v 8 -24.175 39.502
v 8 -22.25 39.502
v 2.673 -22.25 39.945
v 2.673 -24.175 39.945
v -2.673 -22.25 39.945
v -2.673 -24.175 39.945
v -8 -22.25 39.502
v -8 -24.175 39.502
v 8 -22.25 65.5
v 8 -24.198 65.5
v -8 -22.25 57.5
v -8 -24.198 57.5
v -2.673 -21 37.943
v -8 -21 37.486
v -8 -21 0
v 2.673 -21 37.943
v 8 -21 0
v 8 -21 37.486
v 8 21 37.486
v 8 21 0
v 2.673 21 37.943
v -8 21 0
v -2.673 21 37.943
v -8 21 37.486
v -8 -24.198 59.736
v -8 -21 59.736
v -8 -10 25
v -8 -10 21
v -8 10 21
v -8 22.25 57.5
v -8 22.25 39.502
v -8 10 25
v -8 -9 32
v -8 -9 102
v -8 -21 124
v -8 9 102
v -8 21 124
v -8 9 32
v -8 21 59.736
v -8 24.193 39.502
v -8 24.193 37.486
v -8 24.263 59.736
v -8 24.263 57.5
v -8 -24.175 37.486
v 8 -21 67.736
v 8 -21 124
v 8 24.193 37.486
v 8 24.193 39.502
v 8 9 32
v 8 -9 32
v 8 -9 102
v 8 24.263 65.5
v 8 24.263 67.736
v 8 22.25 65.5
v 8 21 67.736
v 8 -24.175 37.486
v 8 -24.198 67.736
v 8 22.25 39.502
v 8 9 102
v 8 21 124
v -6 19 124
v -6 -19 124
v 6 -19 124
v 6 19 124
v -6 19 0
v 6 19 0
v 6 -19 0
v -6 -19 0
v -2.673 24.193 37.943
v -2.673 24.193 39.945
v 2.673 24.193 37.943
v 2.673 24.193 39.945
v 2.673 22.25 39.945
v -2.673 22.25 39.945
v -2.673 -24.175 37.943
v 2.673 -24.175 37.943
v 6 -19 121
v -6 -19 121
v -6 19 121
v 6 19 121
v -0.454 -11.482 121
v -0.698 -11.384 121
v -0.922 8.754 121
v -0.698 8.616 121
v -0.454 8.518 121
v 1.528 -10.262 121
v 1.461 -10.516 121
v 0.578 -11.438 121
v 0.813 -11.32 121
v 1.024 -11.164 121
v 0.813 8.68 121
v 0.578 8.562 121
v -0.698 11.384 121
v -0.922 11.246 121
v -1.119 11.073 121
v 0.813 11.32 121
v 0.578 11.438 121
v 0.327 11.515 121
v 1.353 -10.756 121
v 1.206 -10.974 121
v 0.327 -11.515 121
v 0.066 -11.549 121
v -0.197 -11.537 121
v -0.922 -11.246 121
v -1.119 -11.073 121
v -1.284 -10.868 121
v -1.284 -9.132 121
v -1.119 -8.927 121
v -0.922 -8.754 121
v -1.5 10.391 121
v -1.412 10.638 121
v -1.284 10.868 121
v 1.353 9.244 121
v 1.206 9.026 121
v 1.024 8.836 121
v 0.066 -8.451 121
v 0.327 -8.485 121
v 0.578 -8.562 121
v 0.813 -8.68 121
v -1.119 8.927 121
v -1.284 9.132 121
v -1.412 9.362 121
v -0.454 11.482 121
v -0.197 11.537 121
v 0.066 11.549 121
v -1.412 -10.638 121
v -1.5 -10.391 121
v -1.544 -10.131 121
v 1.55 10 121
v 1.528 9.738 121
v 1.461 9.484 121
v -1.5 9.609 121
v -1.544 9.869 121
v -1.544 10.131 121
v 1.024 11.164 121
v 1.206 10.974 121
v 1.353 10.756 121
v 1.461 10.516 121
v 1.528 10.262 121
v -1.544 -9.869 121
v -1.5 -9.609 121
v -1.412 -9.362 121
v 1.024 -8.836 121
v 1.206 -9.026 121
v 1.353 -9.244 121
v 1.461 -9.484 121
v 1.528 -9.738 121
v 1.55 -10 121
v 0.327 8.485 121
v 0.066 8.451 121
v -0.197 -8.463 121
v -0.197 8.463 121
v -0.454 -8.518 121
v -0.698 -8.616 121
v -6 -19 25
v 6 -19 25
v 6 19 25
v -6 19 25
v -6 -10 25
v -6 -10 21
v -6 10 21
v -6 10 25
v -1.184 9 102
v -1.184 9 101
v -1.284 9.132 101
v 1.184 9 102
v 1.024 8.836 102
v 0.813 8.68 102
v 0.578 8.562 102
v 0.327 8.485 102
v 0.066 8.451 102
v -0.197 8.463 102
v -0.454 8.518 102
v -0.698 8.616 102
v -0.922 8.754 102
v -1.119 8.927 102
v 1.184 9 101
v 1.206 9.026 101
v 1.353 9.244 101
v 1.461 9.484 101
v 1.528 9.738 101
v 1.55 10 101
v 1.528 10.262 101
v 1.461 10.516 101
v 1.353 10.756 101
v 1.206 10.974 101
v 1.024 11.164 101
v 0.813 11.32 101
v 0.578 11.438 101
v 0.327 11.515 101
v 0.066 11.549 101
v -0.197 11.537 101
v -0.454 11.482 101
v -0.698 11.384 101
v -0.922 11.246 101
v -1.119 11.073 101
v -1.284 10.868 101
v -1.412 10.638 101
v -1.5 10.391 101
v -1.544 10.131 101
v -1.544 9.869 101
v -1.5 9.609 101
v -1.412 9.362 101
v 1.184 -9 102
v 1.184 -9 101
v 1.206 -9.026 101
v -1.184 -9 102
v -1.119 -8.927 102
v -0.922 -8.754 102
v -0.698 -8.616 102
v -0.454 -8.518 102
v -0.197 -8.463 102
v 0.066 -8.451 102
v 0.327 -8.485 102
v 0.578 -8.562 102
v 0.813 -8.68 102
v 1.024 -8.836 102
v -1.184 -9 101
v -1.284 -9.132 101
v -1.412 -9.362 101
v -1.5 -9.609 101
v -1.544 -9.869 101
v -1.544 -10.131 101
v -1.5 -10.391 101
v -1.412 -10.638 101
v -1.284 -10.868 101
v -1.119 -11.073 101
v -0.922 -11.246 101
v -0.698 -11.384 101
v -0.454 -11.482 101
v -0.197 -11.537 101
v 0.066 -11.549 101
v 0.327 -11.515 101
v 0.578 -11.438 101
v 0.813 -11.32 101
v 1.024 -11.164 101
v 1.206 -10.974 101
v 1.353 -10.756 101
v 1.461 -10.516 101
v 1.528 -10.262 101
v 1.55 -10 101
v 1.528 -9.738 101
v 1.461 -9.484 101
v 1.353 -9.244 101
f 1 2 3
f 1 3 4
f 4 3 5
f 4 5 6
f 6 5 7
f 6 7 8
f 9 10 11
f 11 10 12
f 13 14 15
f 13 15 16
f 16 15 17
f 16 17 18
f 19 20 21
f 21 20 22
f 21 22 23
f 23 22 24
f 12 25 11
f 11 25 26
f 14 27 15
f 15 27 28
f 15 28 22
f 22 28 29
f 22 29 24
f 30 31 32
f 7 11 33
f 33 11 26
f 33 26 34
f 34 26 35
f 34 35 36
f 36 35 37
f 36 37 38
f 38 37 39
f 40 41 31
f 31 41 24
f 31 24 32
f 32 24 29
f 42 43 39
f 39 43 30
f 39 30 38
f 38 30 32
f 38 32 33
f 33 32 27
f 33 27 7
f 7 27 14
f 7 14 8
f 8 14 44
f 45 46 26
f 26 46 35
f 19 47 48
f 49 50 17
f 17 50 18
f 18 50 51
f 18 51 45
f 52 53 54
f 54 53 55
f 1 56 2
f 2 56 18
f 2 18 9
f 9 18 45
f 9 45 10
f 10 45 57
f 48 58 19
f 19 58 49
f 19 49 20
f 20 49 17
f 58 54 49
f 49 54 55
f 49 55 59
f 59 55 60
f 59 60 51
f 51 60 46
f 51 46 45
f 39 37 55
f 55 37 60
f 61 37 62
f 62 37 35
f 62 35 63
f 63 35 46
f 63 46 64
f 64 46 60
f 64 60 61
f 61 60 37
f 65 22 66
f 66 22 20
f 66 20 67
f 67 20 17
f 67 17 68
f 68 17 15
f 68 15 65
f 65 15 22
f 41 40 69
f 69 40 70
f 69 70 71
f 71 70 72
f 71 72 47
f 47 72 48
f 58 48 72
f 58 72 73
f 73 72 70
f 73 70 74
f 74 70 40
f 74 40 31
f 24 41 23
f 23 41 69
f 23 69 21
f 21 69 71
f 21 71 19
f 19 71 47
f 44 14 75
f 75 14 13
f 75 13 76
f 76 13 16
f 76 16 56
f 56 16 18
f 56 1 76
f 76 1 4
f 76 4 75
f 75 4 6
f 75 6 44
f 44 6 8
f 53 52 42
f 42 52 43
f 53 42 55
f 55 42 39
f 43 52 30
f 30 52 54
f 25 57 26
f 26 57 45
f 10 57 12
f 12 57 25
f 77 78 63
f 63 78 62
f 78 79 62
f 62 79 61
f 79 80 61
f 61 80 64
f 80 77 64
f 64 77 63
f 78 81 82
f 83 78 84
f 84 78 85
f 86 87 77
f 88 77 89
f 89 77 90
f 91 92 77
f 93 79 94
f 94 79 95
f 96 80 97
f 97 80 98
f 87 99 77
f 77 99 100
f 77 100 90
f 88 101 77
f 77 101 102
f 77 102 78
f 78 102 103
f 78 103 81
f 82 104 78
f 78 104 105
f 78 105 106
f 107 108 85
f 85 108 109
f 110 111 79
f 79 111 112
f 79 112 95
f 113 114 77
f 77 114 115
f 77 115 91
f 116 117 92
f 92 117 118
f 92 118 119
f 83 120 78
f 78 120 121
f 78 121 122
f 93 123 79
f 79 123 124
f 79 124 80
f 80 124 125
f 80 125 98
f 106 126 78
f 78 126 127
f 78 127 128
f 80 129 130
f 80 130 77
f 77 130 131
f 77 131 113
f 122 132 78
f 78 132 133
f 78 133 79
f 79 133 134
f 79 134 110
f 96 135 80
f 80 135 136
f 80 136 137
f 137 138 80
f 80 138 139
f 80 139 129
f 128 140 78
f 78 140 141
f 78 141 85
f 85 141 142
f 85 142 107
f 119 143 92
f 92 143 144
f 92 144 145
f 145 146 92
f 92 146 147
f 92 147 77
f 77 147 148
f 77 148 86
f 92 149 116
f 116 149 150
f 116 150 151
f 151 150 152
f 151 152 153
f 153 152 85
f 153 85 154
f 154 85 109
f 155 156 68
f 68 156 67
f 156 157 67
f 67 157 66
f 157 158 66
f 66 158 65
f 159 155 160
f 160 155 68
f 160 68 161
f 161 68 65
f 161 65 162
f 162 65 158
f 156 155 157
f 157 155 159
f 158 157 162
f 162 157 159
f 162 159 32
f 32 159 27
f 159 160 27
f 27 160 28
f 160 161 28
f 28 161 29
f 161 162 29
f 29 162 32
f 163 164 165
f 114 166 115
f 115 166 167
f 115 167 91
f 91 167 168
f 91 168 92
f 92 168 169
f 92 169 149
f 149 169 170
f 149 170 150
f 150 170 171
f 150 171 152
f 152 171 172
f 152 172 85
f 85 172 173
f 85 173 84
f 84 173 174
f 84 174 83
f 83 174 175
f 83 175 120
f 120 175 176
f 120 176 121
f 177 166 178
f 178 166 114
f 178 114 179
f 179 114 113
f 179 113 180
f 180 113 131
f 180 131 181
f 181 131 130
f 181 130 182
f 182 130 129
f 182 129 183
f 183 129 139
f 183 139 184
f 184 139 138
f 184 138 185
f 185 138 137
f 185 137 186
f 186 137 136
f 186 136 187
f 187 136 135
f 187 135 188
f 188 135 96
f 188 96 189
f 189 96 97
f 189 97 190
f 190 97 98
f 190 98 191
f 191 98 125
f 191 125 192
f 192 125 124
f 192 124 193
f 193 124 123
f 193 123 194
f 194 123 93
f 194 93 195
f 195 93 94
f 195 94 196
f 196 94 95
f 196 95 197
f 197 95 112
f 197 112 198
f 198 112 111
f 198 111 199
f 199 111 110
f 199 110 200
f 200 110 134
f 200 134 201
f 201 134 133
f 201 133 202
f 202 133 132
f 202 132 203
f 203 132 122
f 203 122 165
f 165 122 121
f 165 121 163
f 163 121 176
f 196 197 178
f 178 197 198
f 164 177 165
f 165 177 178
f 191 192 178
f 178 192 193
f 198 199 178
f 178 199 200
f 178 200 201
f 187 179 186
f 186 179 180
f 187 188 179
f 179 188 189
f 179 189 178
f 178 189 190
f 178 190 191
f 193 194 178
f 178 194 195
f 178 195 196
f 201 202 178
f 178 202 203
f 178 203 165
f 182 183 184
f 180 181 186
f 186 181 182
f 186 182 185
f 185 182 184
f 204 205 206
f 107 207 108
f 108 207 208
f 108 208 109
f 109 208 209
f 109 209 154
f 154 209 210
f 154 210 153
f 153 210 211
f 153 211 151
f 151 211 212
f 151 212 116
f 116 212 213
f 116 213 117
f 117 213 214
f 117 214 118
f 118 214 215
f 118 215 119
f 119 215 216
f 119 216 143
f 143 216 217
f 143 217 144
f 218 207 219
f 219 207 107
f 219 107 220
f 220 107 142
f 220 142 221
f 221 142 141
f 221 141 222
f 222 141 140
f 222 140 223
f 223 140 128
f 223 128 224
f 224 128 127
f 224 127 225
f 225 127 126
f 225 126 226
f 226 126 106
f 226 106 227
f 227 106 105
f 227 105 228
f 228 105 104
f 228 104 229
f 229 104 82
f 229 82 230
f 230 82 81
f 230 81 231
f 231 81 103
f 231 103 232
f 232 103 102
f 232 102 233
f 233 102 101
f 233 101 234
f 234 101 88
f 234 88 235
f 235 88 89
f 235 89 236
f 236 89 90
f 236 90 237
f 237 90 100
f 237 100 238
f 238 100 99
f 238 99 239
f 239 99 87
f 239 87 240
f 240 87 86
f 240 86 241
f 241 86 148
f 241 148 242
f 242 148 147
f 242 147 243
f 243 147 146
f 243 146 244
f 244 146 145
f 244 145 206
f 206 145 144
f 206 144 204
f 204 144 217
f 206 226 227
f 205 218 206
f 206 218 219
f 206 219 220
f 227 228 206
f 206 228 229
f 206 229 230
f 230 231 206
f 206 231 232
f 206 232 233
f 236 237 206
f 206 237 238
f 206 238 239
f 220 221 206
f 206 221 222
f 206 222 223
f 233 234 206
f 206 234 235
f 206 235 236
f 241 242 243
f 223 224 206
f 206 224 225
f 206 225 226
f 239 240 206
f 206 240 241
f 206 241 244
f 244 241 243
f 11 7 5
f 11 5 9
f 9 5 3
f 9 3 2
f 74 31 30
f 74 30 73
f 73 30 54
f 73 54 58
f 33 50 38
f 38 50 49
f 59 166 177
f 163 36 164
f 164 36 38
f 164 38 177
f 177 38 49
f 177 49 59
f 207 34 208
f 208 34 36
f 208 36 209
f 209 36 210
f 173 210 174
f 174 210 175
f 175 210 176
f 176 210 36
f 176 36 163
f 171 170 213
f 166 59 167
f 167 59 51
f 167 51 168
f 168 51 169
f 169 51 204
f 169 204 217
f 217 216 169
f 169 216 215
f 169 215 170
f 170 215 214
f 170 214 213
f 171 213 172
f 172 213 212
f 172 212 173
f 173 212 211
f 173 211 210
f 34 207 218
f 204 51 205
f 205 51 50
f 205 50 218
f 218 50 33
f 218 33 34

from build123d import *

# Parameters (mm, degrees)
SKETCH_1_W            = 16
SKETCH_1_H            = 42
EXTRUDE_1_DEPTH       = 124
EXTRUDE_4_DEPTH       = 24.193161441
EXTRUDE_4_DEPTH_BACK  = 24.175019218
EXTRUDE_5_DEPTH       = 24.263214739
EXTRUDE_5_DEPTH_BACK  = 24.1979861
SKETCH_7_W            = 12
SKETCH_7_H            = 38
CUT_EXTRUDE_1_DEPTH   = 3
SKETCH_8_W            = 12
SKETCH_8_H            = 38
CUT_EXTRUDE_2_DEPTH   = 25
SKETCH_9_W            = 4
SKETCH_9_H            = 20
CUT_EXTRUDE_3_DEPTH   = 2
SKETCH_10_R           = 1.55
CUT_EXTRUDE_4_DEPTH   = 20
EXTRUDE_10_DEPTH      = 22.25
EXTRUDE_10_DEPTH_BACK = 22.25
SKETCH_13_W           = 70
SKETCH_13_H           = 18
CUT_EXTRUDE_5_DEPTH   = 22.25


with BuildPart() as part:
    # Эскиз1 → Бобышка-Вытянуть1 (new body)
    with BuildSketch(Plane.XY):
        Rectangle(SKETCH_1_W, SKETCH_1_H)
    extrude(amount=EXTRUDE_1_DEPTH)

    # Эскиз5 → Бобышка-Вытянуть4 (add, two sides: drawn at the far end of the back side and taken through both)
    with BuildSketch(Plane(origin=(0, 0, 0), x_dir=(1, 0, 0), z_dir=(0, 1, 0)).offset(-EXTRUDE_4_DEPTH_BACK)):
        with BuildLine():
            Line((-8, -37.48588549), (-8, -39.501953095))
            ThreePointArc((-8, -39.501953095), (0, -40), (8, -39.501953095))
            Line((8, -39.501953095), (8, -37.48588549))
            ThreePointArc((8, -37.48588549), (0, -38), (-8, -37.48588549))
        make_face()
    extrude(amount=EXTRUDE_4_DEPTH + EXTRUDE_4_DEPTH_BACK)

    # Эскиз6 → Бобышка-Вытянуть5 (add, two sides: drawn at the far end of the back side and taken through both)
    with BuildSketch(Plane(origin=(0, 0, 0), x_dir=(1, 0, 0), z_dir=(0, 1, 0)).offset(-EXTRUDE_5_DEPTH_BACK)):
        Polygon((-8, -57.5), (8, -65.5), (8, -67.736067977), (-8, -59.736067977), align=None)
    extrude(amount=EXTRUDE_5_DEPTH + EXTRUDE_5_DEPTH_BACK)

    # Эскиз7 → Вырез-Вытянуть1 (cut)
    with BuildSketch(Plane.XY.offset(124)):
        Rectangle(SKETCH_7_W, SKETCH_7_H)
    extrude(amount=-CUT_EXTRUDE_1_DEPTH, mode=Mode.SUBTRACT)

    # Эскиз8 → Вырез-Вытянуть2 (cut)
    with BuildSketch(Plane(origin=(0, 0, 0), x_dir=(-1, 0, 0), z_dir=(0, 0, -1))):
        Rectangle(SKETCH_8_W, SKETCH_8_H)
    extrude(amount=-CUT_EXTRUDE_2_DEPTH, mode=Mode.SUBTRACT)

    # Эскиз9 → Вырез-Вытянуть3 (cut)
    with BuildSketch(Plane.ZY.offset(8)):
        with Locations((23, 0)):
            Rectangle(SKETCH_9_W, SKETCH_9_H)
    extrude(amount=-CUT_EXTRUDE_3_DEPTH, mode=Mode.SUBTRACT)

    # Эскиз10 → Вырез-Вытянуть4 (cut)
    with BuildSketch(Plane.XY.offset(121)):
        with Locations((0, 10)):
            Circle(SKETCH_10_R)
        with Locations((0, -10)):
            Circle(SKETCH_10_R)
    extrude(amount=-CUT_EXTRUDE_4_DEPTH, mode=Mode.SUBTRACT)

    # Эскиз12 → Бобышка-Вытянуть10 (add, two sides: drawn at the far end of the back side and taken through both)
    with BuildSketch(Plane(origin=(0, 0, 0), x_dir=(1, 0, 0), z_dir=(0, 1, 0)).offset(-EXTRUDE_10_DEPTH_BACK)):
        Polygon((-8, -57.5), (8, -65.5), (8, -47.5019531), (8, -39.501953095), (-8, -39.501953095), align=None)
    extrude(amount=EXTRUDE_10_DEPTH + EXTRUDE_10_DEPTH_BACK)

    # Эскиз13 → Вырез-Вытянуть5 (cut)
    with BuildSketch(Plane.ZY.offset(8)):
        with Locations((67, 0)):
            Rectangle(SKETCH_13_W, SKETCH_13_H)
    extrude(amount=-CUT_EXTRUDE_5_DEPTH, mode=Mode.SUBTRACT)


solid = part.part
